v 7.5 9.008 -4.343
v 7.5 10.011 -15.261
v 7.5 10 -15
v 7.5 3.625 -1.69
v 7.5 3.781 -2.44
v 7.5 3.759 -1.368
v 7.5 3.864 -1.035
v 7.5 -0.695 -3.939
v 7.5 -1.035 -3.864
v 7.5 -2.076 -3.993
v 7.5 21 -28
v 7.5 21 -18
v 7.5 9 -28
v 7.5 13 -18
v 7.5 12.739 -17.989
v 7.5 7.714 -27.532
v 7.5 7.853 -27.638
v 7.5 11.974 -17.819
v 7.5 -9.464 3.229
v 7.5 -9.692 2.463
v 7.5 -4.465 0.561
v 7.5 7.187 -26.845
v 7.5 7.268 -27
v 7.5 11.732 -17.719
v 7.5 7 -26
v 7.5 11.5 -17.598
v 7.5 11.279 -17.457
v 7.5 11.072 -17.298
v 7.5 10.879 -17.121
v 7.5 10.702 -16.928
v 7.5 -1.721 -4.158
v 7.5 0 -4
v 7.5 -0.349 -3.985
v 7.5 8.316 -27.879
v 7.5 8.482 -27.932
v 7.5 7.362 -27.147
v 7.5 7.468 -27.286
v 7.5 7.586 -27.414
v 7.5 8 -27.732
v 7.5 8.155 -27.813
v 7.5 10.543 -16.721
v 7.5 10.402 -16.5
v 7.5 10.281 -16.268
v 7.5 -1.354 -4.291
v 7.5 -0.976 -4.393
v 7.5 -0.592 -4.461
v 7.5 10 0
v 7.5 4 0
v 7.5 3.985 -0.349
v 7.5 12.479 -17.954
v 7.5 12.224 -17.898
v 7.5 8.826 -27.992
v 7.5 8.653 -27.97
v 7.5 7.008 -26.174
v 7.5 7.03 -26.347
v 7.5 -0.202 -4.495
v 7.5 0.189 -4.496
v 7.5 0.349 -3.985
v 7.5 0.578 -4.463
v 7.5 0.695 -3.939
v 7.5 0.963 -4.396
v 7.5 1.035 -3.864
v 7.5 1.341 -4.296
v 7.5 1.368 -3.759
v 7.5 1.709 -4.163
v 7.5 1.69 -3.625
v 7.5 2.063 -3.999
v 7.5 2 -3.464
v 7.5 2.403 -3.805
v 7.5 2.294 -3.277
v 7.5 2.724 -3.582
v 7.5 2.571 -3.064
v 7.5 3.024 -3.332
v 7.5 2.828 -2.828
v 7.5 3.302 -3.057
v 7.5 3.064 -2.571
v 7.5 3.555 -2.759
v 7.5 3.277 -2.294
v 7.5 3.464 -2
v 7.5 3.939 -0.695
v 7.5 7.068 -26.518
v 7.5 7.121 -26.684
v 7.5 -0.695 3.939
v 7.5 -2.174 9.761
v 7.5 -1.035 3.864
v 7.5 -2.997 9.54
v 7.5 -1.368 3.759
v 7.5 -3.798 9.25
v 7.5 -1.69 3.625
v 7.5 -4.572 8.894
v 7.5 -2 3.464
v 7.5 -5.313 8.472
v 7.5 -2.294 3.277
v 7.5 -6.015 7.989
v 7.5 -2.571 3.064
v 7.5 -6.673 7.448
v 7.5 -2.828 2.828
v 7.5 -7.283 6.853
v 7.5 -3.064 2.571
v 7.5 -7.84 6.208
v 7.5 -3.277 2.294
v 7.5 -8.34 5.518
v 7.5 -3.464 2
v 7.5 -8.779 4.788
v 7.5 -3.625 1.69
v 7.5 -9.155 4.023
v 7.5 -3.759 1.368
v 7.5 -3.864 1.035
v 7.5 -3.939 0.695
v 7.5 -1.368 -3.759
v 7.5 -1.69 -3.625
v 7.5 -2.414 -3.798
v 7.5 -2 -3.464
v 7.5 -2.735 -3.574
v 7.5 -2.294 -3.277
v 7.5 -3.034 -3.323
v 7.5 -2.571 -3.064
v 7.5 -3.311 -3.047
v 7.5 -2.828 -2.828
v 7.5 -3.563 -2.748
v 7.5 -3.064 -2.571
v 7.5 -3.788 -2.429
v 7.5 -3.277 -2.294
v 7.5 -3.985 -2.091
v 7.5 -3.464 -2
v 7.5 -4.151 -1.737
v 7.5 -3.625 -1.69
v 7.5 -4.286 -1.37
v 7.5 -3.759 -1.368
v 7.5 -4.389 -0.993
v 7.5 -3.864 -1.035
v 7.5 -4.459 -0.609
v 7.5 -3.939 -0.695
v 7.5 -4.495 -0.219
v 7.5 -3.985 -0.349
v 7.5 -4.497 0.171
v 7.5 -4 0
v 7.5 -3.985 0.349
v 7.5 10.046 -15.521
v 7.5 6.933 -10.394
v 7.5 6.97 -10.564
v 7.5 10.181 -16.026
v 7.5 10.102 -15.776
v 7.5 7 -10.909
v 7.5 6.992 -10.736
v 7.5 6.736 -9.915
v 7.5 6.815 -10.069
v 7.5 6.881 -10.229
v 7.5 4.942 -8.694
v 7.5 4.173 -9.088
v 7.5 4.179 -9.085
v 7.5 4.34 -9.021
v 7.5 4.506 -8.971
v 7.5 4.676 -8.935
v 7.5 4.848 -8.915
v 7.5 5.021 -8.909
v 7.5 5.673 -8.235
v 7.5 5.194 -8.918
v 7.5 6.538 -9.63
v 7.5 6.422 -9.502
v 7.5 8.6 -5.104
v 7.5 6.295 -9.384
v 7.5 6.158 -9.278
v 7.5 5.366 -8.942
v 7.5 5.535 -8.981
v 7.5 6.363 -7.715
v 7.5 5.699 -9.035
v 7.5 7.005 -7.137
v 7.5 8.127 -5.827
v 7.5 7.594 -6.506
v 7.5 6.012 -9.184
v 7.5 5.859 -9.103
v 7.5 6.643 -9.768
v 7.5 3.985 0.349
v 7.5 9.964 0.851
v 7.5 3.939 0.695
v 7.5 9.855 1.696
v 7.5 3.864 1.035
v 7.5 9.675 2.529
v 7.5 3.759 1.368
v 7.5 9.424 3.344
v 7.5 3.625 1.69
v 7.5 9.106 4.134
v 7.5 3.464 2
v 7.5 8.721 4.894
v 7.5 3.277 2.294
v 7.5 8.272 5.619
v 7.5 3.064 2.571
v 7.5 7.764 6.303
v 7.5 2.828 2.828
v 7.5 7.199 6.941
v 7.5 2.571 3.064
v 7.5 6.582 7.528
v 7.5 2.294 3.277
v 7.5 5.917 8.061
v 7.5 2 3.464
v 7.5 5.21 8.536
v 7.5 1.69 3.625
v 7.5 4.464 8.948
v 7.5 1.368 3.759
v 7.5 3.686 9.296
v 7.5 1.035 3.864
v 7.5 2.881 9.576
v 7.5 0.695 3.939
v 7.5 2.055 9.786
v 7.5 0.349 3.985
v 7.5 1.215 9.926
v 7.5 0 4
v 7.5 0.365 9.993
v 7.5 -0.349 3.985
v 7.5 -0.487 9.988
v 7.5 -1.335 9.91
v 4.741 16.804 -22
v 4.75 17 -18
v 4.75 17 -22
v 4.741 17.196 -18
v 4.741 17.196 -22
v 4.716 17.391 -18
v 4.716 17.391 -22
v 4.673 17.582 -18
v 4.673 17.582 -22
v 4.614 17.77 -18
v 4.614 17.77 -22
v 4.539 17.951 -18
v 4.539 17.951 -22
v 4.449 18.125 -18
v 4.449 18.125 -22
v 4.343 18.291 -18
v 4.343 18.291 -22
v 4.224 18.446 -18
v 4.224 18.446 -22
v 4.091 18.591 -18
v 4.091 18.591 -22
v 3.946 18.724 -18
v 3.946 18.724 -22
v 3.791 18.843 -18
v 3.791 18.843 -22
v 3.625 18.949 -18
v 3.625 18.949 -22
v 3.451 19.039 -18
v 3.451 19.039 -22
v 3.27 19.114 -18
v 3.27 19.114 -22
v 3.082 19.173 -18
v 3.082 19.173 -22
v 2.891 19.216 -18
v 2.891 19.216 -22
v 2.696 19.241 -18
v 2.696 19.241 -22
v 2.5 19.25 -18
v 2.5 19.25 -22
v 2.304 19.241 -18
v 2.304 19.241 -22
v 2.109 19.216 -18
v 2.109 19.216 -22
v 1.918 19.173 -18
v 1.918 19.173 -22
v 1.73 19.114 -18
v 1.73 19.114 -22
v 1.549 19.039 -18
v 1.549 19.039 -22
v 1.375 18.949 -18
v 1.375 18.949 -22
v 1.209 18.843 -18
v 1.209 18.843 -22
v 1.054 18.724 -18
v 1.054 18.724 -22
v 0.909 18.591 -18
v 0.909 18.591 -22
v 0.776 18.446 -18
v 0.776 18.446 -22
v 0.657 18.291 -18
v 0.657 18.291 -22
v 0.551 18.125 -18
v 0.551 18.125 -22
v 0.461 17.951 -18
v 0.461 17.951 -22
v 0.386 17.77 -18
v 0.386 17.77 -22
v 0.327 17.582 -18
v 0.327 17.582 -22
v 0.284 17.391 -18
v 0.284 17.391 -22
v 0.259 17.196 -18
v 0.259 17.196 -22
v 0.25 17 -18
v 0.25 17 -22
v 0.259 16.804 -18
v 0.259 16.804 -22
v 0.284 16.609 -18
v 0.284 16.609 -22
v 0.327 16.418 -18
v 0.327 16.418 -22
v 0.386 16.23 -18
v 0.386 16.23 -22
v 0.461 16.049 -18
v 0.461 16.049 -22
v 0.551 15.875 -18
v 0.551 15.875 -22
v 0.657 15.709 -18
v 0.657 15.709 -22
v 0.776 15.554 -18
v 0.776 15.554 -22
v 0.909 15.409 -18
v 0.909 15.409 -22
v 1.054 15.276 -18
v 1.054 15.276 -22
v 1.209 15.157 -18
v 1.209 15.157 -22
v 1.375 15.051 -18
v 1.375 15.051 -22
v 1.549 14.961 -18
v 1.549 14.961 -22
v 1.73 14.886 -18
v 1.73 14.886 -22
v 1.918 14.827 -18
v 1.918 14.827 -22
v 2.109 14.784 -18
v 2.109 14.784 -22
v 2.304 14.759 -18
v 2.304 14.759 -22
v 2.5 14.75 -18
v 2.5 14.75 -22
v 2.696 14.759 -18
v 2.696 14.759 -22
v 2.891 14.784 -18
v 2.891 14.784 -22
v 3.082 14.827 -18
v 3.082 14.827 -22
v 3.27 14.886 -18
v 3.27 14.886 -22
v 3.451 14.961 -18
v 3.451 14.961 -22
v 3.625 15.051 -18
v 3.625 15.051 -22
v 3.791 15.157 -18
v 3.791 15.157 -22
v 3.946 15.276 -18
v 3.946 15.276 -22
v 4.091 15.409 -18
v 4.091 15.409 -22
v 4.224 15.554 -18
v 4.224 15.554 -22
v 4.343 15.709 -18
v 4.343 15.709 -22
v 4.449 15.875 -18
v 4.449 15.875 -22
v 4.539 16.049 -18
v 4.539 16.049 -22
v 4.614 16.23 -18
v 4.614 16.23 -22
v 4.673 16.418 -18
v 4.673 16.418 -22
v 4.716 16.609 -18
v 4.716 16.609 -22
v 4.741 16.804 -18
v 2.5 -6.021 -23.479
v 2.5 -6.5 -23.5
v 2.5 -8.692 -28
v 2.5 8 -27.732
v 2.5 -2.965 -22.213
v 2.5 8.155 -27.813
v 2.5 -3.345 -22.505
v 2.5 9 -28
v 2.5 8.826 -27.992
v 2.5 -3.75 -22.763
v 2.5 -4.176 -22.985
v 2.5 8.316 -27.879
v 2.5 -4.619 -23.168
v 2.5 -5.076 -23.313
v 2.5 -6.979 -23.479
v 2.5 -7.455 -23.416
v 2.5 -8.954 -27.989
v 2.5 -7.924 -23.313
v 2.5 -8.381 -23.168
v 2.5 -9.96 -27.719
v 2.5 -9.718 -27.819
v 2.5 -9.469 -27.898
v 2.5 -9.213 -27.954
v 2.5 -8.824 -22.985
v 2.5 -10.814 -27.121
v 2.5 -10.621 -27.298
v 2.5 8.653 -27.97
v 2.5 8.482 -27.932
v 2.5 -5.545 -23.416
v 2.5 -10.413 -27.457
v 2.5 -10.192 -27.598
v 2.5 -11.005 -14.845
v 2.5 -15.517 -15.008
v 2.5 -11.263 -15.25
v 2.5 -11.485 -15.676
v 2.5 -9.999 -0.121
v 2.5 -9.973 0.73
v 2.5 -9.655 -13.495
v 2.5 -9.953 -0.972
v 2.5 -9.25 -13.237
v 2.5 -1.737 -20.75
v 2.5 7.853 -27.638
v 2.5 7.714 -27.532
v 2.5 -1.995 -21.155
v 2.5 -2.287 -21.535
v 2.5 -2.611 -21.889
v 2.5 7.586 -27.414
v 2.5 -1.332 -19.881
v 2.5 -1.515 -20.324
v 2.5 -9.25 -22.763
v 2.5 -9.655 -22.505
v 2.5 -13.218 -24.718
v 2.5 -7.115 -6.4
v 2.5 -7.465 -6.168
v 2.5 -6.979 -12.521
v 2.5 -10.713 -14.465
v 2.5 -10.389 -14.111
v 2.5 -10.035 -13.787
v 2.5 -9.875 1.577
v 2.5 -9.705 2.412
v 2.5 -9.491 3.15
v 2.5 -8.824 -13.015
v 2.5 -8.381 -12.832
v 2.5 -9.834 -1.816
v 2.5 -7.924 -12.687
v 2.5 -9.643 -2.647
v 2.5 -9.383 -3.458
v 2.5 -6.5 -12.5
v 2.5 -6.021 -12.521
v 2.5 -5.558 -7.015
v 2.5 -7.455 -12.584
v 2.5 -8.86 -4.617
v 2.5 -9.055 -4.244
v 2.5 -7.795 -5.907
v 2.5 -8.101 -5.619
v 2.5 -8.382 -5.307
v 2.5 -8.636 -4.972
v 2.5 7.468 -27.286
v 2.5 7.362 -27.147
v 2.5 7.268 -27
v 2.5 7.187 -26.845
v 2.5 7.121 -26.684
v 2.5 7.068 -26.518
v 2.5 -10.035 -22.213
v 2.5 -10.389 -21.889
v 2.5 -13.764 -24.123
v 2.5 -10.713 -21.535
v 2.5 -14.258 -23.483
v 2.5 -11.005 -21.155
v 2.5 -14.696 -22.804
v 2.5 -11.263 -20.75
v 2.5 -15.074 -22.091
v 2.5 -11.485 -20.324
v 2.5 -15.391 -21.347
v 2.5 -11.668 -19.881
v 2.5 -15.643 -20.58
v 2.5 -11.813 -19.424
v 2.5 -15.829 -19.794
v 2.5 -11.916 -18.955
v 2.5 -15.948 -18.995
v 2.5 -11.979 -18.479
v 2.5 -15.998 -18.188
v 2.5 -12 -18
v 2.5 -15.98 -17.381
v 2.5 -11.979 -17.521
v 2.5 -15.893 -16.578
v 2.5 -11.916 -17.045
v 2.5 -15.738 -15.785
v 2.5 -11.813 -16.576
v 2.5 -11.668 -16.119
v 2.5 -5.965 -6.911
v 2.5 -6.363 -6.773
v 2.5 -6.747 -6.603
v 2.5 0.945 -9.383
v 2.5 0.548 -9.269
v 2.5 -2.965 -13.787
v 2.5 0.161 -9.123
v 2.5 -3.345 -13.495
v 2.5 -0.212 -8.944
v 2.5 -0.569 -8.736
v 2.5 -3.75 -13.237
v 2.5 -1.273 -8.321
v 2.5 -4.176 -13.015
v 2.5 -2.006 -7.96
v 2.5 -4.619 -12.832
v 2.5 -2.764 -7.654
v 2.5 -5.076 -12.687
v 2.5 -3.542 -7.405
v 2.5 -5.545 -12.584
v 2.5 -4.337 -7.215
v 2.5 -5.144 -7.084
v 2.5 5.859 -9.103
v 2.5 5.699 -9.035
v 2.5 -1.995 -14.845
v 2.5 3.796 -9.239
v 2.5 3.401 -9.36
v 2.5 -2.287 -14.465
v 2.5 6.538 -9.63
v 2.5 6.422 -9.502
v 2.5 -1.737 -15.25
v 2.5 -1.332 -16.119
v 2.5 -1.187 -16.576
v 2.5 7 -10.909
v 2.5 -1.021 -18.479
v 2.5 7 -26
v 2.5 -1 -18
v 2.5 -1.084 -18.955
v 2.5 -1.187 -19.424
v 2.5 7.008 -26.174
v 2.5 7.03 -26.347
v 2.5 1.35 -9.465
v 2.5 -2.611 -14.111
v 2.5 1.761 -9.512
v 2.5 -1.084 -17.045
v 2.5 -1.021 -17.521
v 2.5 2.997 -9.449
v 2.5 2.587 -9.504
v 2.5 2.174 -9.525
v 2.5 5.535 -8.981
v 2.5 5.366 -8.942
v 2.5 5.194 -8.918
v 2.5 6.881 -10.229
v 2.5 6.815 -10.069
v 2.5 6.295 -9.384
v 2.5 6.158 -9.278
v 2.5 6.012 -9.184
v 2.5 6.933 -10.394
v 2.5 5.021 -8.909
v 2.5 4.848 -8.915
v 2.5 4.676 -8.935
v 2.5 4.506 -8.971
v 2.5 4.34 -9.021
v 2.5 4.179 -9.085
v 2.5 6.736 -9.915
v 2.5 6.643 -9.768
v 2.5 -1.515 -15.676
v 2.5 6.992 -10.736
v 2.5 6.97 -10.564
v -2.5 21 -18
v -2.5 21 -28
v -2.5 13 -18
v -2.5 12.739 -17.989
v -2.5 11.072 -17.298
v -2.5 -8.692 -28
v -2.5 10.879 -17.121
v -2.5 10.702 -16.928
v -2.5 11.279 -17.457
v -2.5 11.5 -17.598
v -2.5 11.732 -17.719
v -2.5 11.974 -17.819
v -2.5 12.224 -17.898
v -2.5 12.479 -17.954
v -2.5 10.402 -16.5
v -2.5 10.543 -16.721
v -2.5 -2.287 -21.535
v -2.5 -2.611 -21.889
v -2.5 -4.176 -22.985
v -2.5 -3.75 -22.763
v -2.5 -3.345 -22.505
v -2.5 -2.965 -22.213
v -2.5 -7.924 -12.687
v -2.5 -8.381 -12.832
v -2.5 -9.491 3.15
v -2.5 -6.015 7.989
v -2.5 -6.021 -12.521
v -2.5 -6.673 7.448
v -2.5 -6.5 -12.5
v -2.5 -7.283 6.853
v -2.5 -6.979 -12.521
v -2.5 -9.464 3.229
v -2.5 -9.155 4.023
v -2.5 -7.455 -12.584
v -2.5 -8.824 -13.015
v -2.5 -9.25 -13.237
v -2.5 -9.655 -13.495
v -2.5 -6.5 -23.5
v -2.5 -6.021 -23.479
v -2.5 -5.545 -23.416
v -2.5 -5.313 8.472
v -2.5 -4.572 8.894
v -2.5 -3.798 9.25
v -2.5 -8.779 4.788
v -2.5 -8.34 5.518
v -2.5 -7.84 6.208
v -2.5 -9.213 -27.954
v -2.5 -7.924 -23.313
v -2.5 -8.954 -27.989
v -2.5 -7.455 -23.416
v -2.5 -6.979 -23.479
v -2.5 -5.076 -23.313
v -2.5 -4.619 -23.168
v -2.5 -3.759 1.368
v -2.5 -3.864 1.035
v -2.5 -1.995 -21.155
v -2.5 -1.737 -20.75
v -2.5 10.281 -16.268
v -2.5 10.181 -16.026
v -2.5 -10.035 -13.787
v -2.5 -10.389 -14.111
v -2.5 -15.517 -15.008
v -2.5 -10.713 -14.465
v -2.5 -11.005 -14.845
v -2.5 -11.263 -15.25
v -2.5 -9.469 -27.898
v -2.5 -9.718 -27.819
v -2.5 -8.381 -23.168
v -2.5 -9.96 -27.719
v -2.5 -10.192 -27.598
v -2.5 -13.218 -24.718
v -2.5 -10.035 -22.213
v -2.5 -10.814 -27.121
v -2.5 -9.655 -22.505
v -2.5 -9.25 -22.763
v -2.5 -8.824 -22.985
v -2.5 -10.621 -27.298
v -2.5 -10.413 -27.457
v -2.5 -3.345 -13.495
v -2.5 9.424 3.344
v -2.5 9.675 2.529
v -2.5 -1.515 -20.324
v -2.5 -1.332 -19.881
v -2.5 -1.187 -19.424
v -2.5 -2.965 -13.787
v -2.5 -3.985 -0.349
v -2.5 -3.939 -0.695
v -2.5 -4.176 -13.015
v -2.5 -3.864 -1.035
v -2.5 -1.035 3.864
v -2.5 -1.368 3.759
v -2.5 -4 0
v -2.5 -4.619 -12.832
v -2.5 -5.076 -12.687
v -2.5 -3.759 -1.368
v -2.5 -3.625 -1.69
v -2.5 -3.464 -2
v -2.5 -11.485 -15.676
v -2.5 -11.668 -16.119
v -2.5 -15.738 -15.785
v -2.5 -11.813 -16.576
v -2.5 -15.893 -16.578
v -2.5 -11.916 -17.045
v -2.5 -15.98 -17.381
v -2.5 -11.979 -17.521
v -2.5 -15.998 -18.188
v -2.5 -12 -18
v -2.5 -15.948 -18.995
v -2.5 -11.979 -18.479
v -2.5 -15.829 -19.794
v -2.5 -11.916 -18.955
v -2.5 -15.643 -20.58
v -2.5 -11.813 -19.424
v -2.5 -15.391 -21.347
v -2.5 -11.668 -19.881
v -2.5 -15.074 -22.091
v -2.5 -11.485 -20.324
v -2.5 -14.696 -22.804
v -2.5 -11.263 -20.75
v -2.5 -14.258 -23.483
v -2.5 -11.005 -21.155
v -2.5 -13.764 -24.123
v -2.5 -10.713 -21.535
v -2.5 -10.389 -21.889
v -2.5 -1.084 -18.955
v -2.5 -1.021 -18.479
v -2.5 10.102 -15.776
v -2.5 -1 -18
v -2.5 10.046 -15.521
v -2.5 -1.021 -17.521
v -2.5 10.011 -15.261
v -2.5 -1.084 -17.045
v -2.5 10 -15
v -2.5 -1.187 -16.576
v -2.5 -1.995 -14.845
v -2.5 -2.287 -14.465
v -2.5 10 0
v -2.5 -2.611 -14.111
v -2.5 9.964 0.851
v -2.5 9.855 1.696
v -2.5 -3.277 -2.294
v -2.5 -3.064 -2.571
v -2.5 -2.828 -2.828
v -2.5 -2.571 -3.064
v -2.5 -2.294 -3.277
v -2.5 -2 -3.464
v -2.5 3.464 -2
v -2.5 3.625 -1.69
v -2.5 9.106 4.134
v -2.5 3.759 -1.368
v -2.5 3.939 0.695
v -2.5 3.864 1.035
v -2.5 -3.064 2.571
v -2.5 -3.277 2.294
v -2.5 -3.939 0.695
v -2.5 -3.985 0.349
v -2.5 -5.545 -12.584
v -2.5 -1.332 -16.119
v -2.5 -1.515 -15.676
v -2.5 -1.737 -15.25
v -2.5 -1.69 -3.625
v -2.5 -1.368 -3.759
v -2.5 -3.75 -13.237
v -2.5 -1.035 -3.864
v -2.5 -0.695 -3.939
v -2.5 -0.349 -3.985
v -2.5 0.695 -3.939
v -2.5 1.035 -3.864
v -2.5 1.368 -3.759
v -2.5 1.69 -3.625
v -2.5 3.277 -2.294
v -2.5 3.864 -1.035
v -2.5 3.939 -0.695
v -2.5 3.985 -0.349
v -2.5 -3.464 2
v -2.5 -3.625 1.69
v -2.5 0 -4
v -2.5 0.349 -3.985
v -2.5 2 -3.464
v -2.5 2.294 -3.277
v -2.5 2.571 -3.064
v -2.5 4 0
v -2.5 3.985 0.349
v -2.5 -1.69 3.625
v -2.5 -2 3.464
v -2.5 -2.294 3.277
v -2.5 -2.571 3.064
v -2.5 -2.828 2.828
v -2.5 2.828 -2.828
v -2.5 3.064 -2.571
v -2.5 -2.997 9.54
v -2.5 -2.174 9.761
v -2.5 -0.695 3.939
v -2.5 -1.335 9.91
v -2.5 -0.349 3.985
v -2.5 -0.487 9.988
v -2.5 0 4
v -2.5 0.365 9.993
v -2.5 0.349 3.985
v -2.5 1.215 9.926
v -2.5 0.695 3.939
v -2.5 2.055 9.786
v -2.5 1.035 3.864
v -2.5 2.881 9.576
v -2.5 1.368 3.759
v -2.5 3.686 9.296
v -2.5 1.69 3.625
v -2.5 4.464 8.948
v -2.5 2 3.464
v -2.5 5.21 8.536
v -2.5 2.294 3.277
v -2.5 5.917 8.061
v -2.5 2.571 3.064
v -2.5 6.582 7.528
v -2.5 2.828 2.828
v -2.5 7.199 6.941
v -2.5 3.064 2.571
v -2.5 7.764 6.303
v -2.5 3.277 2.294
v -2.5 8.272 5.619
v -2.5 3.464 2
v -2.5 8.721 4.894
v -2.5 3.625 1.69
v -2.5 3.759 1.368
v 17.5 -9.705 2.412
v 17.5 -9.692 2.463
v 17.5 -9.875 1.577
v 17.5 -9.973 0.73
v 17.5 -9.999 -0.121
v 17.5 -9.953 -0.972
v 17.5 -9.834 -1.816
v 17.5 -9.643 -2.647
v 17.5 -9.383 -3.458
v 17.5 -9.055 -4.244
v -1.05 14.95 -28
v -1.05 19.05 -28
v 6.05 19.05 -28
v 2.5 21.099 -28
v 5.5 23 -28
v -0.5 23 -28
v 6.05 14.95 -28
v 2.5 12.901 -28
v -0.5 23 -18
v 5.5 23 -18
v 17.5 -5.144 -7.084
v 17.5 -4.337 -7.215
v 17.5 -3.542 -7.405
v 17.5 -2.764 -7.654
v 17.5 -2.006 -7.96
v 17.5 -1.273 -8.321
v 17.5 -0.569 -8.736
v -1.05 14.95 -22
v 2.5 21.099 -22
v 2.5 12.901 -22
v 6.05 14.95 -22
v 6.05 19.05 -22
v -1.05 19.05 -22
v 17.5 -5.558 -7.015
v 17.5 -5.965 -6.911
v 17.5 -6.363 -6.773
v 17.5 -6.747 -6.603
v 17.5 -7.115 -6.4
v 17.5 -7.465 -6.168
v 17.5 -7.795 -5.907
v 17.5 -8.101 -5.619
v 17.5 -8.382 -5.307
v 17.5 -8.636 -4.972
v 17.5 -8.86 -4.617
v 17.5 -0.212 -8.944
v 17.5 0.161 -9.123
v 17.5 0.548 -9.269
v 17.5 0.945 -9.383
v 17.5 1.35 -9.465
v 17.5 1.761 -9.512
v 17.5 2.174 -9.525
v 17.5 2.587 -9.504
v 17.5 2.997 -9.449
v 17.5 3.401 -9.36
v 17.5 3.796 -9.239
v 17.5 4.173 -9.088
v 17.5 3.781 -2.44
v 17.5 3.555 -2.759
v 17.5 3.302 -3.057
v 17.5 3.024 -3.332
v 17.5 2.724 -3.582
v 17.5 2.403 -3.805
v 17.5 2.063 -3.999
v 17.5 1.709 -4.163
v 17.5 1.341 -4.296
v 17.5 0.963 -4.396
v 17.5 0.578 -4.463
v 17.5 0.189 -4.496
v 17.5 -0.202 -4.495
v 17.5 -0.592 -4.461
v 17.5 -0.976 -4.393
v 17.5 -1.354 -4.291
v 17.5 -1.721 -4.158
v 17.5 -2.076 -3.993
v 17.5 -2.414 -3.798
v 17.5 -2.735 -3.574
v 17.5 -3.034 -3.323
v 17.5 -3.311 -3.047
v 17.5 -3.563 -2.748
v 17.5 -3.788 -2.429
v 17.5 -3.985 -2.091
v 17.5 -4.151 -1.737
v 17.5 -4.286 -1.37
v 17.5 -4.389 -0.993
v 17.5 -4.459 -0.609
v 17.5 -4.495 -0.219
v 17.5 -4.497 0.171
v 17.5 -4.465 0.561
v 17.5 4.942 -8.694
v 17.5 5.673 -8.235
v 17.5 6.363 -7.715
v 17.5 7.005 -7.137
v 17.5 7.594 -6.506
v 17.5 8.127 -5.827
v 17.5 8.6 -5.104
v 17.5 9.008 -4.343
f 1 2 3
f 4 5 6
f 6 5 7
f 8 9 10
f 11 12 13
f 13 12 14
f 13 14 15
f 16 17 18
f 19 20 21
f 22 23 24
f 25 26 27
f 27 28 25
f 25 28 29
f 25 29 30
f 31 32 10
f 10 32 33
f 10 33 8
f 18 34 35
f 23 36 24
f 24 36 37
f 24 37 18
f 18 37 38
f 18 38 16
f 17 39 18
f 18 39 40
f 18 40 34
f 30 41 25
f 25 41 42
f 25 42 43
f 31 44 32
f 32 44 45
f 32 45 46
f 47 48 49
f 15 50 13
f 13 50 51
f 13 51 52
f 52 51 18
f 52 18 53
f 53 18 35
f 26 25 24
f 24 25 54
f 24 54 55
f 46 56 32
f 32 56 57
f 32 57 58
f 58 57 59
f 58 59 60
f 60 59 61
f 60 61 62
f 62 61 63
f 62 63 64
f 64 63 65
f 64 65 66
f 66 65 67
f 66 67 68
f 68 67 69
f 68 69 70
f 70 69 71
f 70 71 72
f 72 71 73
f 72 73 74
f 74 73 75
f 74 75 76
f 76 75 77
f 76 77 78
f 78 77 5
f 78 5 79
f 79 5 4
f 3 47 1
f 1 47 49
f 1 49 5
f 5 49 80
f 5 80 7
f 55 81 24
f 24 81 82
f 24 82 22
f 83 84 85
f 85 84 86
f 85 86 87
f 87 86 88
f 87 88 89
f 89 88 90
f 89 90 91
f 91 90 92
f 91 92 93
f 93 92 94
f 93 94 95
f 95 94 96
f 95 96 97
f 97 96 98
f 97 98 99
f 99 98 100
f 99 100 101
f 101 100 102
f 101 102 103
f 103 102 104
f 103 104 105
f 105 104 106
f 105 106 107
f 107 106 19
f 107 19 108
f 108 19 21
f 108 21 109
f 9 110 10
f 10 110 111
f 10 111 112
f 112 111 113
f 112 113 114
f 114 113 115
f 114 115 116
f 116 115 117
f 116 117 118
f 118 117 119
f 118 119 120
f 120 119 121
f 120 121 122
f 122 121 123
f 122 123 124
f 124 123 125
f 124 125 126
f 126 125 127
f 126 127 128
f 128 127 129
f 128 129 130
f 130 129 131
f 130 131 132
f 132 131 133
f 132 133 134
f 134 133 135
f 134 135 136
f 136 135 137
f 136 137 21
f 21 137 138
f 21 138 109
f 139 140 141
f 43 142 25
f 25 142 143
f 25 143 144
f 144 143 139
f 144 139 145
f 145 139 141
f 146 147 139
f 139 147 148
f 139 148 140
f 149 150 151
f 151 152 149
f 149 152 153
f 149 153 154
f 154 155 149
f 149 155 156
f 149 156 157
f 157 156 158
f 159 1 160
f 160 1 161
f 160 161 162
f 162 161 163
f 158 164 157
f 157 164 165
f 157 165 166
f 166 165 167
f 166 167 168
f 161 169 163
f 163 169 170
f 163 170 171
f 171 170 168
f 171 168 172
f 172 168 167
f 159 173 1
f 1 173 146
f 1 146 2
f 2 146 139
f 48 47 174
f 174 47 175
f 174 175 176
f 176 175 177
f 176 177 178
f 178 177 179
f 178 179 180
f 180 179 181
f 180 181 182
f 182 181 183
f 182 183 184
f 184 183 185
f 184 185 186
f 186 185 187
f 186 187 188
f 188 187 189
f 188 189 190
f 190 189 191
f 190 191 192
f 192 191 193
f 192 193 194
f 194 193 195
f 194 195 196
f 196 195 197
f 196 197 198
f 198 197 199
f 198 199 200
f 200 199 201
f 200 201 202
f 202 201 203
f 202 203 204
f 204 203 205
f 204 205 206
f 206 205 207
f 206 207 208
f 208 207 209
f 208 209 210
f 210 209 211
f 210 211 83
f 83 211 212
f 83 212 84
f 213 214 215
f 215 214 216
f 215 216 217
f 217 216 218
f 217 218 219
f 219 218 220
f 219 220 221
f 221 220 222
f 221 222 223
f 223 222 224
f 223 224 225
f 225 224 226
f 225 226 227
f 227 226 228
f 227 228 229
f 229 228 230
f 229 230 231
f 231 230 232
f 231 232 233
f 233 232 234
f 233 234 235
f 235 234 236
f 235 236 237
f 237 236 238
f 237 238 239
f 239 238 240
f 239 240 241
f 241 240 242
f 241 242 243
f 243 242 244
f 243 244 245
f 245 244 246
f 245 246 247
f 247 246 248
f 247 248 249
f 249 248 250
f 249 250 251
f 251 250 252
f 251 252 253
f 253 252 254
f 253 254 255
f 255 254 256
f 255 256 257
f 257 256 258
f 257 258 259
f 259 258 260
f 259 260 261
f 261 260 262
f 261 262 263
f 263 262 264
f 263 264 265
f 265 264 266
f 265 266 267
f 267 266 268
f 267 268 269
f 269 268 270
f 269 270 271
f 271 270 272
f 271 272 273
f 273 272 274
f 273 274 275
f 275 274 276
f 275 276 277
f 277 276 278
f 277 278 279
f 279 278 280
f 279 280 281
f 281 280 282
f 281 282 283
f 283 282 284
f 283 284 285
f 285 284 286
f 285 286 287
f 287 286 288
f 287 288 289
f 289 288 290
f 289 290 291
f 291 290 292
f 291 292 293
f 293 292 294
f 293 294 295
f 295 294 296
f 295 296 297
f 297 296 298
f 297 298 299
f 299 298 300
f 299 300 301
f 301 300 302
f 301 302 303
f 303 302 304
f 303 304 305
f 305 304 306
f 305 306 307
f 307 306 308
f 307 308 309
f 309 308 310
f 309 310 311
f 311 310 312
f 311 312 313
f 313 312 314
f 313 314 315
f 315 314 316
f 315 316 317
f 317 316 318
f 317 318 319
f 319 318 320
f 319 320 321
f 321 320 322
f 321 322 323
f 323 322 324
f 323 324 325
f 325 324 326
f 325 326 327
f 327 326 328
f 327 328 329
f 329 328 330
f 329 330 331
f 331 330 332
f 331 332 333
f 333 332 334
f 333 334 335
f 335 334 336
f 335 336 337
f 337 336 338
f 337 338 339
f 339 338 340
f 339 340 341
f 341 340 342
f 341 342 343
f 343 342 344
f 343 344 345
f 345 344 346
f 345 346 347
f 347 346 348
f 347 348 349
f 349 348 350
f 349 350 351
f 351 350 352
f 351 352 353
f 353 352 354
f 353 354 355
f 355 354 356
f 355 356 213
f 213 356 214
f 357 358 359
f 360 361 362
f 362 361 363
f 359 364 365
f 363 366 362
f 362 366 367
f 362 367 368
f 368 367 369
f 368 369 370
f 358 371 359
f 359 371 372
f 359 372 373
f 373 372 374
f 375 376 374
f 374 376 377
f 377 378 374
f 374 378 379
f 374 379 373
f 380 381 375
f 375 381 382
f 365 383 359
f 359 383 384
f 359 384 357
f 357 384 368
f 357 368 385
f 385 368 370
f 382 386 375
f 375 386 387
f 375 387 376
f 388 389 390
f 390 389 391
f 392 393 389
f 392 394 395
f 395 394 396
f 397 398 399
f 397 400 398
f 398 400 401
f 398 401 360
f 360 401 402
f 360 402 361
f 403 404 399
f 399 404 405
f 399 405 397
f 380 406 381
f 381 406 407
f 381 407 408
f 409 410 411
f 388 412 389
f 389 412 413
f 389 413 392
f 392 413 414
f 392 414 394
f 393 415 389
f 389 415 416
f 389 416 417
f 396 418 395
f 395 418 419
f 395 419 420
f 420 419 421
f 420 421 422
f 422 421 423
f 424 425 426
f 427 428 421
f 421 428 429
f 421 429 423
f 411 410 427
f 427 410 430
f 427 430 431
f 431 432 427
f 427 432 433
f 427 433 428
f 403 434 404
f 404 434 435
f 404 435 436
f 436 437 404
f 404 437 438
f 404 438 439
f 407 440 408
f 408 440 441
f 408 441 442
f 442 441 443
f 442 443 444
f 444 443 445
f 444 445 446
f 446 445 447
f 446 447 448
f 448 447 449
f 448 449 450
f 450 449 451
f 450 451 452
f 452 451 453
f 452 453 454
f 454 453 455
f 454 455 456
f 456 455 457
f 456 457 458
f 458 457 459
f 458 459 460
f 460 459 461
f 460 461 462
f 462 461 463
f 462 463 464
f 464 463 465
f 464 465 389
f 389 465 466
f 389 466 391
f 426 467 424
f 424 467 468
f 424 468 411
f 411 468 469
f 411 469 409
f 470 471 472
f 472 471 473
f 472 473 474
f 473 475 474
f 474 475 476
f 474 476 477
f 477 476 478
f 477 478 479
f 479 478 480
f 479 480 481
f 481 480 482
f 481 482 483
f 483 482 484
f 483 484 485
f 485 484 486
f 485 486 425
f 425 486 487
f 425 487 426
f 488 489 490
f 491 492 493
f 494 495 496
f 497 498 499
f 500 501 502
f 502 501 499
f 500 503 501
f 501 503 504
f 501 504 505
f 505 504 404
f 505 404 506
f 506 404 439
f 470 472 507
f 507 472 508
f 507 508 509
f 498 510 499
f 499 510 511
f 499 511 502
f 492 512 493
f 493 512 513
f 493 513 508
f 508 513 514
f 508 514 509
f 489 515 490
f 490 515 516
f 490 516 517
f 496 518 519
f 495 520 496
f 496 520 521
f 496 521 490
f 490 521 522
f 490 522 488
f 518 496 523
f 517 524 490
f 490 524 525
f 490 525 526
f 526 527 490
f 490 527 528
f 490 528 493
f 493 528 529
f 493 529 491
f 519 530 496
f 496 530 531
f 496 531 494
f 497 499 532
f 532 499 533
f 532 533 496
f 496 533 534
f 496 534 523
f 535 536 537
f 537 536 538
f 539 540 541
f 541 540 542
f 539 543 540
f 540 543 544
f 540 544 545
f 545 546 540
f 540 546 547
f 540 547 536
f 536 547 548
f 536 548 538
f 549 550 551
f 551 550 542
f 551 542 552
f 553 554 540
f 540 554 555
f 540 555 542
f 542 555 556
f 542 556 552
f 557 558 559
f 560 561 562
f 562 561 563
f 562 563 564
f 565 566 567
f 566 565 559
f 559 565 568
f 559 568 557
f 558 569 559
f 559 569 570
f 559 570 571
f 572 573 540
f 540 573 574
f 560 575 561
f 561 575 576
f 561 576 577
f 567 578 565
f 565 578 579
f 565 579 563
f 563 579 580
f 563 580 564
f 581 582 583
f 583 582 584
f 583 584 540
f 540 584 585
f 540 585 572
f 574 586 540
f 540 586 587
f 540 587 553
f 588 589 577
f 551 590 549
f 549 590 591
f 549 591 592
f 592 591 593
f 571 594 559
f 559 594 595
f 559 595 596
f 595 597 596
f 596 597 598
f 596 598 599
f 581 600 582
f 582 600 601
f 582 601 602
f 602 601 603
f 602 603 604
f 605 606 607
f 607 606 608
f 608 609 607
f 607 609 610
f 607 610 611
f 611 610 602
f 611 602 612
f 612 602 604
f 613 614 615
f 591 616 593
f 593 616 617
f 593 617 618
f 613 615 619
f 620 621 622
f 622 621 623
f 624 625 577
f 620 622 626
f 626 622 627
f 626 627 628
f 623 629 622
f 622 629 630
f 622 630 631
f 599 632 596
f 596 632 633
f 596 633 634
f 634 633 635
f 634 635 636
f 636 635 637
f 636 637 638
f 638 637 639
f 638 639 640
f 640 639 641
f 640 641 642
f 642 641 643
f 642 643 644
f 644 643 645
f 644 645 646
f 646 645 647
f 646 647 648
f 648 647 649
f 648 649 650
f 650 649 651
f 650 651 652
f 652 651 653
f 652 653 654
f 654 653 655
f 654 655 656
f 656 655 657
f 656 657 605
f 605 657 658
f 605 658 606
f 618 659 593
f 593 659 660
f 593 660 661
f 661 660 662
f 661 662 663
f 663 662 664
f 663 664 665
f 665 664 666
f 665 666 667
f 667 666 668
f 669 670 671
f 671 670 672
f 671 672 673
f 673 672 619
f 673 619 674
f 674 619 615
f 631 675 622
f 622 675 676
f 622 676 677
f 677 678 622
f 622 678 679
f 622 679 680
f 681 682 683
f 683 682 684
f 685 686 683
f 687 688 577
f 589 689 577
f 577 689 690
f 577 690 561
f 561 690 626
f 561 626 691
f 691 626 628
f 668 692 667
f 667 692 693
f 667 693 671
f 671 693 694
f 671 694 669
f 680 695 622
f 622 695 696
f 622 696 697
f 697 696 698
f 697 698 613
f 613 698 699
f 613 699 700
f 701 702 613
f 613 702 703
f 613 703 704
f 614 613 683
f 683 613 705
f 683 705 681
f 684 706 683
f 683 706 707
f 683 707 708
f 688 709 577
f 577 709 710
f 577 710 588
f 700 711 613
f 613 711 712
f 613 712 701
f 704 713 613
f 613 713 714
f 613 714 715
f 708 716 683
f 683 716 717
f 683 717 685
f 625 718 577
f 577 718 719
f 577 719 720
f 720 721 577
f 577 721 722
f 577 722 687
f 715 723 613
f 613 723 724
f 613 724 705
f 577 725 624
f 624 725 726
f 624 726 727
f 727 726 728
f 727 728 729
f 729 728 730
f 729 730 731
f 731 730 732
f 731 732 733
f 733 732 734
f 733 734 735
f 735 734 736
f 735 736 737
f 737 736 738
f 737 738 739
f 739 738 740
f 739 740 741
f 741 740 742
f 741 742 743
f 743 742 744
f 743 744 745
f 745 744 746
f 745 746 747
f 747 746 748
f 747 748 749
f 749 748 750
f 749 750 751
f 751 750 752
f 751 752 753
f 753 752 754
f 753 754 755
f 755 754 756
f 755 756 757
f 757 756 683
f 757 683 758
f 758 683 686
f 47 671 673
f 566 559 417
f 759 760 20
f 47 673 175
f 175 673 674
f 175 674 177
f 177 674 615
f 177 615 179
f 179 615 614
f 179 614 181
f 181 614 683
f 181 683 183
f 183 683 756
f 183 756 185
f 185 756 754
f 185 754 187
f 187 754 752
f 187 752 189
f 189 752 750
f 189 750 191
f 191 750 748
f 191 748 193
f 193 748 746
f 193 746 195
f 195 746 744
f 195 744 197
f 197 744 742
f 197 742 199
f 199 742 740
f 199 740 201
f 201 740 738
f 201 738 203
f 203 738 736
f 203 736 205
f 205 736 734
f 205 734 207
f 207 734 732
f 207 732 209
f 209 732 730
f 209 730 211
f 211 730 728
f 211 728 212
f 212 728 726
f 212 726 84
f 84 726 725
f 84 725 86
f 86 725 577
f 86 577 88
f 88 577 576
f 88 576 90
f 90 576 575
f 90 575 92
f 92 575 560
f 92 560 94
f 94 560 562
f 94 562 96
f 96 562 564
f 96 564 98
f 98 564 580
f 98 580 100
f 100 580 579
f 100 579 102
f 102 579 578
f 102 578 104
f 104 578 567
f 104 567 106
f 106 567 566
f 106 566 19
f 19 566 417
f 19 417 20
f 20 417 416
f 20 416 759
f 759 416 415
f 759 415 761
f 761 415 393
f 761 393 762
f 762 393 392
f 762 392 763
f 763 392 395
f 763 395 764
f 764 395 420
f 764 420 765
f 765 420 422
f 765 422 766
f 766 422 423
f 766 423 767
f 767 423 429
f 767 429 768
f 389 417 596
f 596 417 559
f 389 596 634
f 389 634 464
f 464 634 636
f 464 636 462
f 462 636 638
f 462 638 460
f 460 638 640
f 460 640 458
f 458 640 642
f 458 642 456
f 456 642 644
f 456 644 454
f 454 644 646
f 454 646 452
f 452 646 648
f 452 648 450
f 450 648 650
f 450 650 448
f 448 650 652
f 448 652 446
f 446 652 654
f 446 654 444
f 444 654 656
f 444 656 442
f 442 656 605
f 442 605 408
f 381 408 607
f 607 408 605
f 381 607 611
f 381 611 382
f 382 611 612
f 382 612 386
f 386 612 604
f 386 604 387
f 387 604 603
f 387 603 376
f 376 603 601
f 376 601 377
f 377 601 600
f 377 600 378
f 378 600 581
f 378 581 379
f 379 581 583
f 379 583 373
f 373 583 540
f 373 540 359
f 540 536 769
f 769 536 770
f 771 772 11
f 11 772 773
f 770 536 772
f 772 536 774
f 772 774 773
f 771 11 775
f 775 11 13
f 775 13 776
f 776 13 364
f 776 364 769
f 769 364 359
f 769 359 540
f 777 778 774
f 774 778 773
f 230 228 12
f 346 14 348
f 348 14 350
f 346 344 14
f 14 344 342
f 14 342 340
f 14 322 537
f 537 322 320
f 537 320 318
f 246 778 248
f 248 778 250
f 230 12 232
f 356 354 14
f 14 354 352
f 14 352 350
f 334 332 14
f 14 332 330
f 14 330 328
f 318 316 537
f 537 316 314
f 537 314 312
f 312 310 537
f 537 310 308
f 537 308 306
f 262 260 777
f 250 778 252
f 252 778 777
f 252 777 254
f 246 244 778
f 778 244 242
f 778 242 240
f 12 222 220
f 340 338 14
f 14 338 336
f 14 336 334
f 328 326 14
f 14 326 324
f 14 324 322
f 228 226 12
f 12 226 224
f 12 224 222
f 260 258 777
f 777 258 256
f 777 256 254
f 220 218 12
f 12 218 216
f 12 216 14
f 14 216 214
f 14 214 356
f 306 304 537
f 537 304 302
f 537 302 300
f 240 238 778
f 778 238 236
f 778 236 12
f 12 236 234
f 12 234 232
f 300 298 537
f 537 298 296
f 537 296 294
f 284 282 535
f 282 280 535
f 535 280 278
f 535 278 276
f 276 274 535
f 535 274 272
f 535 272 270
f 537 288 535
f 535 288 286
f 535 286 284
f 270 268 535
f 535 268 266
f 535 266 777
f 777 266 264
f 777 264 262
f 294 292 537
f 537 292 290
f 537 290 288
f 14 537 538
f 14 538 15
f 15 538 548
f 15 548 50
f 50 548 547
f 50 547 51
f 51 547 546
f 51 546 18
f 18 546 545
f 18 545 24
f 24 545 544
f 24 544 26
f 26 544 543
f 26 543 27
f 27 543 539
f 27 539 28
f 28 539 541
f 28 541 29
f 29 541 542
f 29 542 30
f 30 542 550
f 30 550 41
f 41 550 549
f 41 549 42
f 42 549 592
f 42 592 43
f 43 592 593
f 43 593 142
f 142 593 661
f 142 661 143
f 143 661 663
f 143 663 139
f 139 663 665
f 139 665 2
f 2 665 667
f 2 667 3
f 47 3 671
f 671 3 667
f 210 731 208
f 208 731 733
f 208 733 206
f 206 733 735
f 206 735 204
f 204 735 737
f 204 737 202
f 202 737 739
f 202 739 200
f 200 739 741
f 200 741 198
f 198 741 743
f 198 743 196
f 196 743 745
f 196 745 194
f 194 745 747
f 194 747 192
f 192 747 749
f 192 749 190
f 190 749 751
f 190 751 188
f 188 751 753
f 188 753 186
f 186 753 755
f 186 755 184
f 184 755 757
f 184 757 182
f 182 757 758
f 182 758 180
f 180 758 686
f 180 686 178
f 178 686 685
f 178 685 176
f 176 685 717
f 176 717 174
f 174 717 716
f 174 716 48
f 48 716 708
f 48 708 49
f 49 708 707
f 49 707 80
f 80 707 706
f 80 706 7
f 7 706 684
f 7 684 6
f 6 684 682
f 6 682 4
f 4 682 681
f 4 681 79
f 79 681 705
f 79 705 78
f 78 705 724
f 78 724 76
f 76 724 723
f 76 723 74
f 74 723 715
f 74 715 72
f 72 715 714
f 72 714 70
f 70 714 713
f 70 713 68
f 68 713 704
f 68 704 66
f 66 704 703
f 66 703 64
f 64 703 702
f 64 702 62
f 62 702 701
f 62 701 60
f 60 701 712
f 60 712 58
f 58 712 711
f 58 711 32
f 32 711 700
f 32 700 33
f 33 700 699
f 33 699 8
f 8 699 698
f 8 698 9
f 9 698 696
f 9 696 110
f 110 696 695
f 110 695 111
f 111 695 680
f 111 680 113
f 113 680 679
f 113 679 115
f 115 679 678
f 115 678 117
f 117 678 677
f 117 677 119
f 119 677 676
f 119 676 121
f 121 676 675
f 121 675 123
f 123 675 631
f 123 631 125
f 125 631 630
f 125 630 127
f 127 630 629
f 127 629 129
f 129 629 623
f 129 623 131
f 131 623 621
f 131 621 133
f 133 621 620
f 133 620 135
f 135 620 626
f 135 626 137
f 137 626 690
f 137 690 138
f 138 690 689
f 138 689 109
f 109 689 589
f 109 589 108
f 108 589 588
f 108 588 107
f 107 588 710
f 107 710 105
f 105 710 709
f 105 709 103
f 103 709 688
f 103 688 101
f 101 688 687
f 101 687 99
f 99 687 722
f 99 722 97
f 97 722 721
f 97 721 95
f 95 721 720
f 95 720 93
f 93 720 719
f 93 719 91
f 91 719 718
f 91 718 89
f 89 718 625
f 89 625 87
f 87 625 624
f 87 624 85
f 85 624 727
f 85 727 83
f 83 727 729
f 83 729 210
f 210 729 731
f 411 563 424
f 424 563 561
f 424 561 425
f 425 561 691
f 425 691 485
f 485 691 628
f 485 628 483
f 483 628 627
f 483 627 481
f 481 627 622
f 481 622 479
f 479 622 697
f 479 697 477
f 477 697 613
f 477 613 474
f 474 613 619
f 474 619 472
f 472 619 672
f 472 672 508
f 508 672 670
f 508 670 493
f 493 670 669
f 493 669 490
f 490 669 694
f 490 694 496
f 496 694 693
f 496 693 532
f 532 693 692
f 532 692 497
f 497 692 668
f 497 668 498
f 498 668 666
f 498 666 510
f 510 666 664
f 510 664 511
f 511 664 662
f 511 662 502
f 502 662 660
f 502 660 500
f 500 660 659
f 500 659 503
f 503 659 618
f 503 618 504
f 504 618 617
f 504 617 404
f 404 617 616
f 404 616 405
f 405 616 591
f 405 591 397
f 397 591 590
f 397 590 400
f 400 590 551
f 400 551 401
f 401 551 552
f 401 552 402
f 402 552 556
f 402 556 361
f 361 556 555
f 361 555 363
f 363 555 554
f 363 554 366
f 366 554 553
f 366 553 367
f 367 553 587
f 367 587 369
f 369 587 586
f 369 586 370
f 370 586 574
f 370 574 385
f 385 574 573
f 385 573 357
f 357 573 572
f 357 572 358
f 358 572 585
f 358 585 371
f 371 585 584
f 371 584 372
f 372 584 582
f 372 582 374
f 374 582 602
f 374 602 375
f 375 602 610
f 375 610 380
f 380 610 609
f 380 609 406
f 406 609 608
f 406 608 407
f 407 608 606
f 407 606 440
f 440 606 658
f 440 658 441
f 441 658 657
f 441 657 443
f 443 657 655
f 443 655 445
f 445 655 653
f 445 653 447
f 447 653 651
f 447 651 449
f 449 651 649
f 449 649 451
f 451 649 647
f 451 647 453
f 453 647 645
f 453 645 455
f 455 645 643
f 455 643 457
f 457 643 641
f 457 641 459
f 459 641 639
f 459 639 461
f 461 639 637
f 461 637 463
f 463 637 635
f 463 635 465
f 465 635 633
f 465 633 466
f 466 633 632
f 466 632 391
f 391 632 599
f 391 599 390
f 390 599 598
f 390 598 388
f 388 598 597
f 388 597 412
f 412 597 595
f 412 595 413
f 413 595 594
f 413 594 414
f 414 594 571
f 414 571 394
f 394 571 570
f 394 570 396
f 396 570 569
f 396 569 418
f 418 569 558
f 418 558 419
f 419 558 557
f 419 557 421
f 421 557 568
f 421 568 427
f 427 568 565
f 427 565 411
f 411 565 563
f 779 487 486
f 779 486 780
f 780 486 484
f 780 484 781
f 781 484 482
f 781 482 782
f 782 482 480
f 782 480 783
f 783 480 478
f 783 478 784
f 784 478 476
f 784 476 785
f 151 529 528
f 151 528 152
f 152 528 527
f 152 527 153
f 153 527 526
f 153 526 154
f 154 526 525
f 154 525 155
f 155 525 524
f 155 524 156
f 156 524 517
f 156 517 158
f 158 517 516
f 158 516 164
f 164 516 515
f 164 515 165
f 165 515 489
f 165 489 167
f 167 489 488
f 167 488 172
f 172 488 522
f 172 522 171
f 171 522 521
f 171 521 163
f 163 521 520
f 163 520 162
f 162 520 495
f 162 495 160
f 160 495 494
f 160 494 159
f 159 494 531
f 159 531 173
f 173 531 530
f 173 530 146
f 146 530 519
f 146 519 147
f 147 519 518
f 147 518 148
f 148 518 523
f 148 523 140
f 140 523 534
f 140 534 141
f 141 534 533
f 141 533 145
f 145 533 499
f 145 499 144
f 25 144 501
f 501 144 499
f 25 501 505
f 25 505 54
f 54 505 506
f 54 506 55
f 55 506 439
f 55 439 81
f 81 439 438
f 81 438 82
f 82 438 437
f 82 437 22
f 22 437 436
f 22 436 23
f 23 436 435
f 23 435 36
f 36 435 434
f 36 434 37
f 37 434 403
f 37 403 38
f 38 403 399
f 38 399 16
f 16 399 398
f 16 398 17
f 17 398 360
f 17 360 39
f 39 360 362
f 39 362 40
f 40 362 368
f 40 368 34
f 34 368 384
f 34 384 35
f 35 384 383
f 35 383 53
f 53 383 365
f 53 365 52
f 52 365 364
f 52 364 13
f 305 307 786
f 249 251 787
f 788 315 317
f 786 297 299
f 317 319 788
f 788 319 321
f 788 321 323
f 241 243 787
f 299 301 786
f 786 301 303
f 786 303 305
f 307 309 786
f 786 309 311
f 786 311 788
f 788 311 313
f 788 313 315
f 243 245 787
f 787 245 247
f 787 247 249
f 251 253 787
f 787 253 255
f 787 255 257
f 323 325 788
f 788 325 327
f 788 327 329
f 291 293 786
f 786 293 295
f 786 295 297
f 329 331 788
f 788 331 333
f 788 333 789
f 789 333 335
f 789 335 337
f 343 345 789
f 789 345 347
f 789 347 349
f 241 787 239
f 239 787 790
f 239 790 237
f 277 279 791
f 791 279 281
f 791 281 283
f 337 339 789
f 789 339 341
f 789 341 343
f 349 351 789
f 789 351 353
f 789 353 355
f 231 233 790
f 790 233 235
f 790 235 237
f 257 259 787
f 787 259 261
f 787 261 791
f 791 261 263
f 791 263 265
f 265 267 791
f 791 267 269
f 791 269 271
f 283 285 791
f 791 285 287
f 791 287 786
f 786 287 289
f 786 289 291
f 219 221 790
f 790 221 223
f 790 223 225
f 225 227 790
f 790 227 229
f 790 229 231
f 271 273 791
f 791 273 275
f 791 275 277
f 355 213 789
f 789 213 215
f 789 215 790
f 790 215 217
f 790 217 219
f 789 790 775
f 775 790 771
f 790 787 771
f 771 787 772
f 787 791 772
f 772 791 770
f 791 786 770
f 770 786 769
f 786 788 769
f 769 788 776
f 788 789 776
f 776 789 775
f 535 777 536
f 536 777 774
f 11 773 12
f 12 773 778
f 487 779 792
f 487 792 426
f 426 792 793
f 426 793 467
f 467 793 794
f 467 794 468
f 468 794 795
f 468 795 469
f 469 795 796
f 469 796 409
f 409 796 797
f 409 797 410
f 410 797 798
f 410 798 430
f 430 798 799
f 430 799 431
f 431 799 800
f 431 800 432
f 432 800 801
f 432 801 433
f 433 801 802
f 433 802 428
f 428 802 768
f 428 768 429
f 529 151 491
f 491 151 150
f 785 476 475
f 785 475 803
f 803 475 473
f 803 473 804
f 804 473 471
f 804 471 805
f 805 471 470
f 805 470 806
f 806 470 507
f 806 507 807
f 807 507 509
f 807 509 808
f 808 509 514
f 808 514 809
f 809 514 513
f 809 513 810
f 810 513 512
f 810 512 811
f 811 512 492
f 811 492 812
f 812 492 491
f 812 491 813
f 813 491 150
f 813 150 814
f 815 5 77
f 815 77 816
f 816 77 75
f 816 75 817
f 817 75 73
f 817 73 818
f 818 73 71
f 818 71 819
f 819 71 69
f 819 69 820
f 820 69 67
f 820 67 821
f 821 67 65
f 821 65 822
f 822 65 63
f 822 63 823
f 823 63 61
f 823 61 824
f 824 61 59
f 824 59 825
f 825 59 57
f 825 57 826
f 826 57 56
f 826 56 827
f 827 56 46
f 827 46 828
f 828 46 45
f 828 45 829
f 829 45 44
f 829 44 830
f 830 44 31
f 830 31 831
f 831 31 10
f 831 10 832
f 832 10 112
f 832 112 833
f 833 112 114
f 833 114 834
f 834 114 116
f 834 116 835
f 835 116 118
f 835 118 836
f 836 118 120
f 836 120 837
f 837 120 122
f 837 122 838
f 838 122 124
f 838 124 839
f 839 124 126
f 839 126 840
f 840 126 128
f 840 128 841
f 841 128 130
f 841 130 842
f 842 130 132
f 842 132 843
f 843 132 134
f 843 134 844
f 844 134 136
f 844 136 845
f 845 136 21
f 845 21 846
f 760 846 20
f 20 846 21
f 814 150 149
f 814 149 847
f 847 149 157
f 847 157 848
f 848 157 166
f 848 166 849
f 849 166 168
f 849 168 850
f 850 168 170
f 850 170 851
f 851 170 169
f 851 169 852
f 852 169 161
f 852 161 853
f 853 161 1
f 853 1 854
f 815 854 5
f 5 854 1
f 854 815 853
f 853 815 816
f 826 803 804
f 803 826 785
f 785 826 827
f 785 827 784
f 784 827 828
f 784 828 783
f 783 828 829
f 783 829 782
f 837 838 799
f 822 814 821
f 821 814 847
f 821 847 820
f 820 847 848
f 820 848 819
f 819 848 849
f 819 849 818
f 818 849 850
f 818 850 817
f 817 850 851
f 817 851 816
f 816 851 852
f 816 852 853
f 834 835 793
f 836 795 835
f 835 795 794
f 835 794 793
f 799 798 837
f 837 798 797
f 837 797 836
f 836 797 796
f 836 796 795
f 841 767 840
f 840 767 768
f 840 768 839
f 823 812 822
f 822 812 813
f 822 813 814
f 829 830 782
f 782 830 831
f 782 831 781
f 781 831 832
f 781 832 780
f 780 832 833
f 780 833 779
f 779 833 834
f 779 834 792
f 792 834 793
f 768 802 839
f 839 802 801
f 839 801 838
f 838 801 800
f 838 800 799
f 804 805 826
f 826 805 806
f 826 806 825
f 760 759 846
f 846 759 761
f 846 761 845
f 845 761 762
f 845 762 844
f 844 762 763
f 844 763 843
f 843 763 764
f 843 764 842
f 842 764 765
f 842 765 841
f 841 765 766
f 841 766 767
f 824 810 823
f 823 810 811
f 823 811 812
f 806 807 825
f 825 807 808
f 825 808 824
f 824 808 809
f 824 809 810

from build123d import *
from build123d.topology import SkipClean

# Parameters (mm, degrees)
SKETCH1_R           = 4
SKETCH1_R_2         = 5.5
BOSS_EXTRUDE1_DEPTH = 2.5
BOSS_EXTRUDE2_START = -5
SKETCH2_R           = 4
BOSS_EXTRUDE2_DEPTH = 5
SKETCH3_R           = 2.25
CUT_EXTRUDE1_DEPTH  = 38.003378224
CUT_EXTRUDE2_DEPTH  = 6
CHAMFER1_SIZE       = 2
FILLET1_R           = 5
BOSS_EXTRUDE3_DEPTH = 10


# Read off the part's stored shape, not the designer's step: Boss-Extrude3
with BuildPart() as part:
    # Sketch1 → Boss-Extrude1 (new, symmetric)
    with BuildSketch(Plane(origin=(0, 0, 0), x_dir=(0, 0, -1), z_dir=(1, 0, 0))):
        with BuildLine():
            Line((-3.149551455, -9.491065569), (15.007926117, -15.51651229))
            ThreePointArc((15.007926117, -15.51651229), (20.188852348, -15.744399678), (24.717514421, -13.217514421))
            Line((24.717514421, -13.217514421), (27.121320344, -10.813708499))
            ThreePointArc((27.121320344, -10.813708499), (27.771638598, -9.840438453), (28, -8.692388155))
            Line((28, -8.692388155), (28, 23))
            Line((28, 23), (18, 23))
            Line((18, 23), (18, 13))
            ThreePointArc((18, 13), (17.121320344, 10.878679656), (15, 10))
            Line((15, 10), (0, 10))
            ThreePointArc((0, 10), (-9.871946507, 1.595202857), (-3.149551455, -9.491065569))
        make_face()
        Circle(SKETCH1_R, mode=Mode.SUBTRACT)
        with Locations((18, -6.5)):
            Circle(SKETCH1_R_2, mode=Mode.SUBTRACT)
    extrude(amount=BOSS_EXTRUDE1_DEPTH, both=True)

    # Sketch2 → Boss-Extrude2 (add)
    with SkipClean():  # the faces are left unmerged after this step: merging them gives an invalid solid
        with BuildSketch(Plane.ZY.offset(-2.5).offset(BOSS_EXTRUDE2_START)):
            with BuildLine():
                Line((0, 10), (-15, 10))
                ThreePointArc((-15, 10), (-17.121320344, 10.878679656), (-18, 13))
                Line((-18, 13), (-18, 23))
                Line((-18, 23), (-28, 23))
                Line((-28, 23), (-28, 9))
                ThreePointArc((-28, 9), (-27.414213562, 7.585786438), (-26, 7))
                Line((-26, 7), (-10.908712115, 7))
                ThreePointArc((-10.908712115, 7), (-9.225461292, 6.08012345), (-9.090593429, 4.166666667))
                ThreePointArc((-9.090593429, 4.166666667), (-9.651431629, 2.617225154), (-9.950203687, 0.996717904))
                ThreePointArc((-9.950203687, 0.996717904), (-7.653907103, -2.763910898), (-7.017714401, -7.124021658))
                ThreePointArc((-7.017714401, -7.124021658), (9.253113438, -3.792082767), (0, 10))
            make_face()
            Circle(SKETCH2_R, mode=Mode.SUBTRACT)
        extrude(amount=BOSS_EXTRUDE2_DEPTH)

    # Sketch3 → Cut-Extrude1 (cut, through all)
    with SkipClean():  # the faces are left unmerged after this step: merging them gives an invalid solid
        with BuildSketch(Plane.XY.offset(-18)):
            with Locations((2.5, 17)):
                Circle(SKETCH3_R)
        extrude(amount=-CUT_EXTRUDE1_DEPTH, mode=Mode.SUBTRACT)

    # Sketch4 → Cut-Extrude2 (cut)
    with SkipClean():  # the faces are left unmerged after this step: merging them gives an invalid solid
        with BuildSketch(Plane(origin=(0, 0, -28), x_dir=(-1, 0, 0), z_dir=(0, 0, -1))):
            Polygon((-6.05, 14.950406544), (-2.5, 12.900813089), (1.05, 14.950406544), (1.05, 19.049593456), (-2.5, 21.099186911), (-6.05, 19.049593456), align=None)
        extrude(amount=-CUT_EXTRUDE2_DEPTH, mode=Mode.SUBTRACT)

    # Chamfer1
    chamfer1_edges = [part.edges().sort_by_distance(p)[0] for p in [
        (-2.5, 23, -23),
        (7.5, 23, -23),
    ]]
    chamfer(chamfer1_edges, length=CHAMFER1_SIZE)

    # Fillet1
    fillet1_edges = [part.edges().sort_by_distance(p)[0] for p in [
        (5, -7.124021658, -7.017714401),
        (5, 0.996717904, -9.950203687),
    ]]
    fillet(fillet1_edges, radius=FILLET1_R)

    # Boss-Extrude3 outline → Boss-Extrude3 (add)
    with SkipClean():  # the faces are left unmerged after this step: merging them gives an invalid solid
        with BuildSketch(Plane(origin=(7.5, 0, 0), x_dir=(0, 0, -1), z_dir=(1, 0, 0))):
            with BuildLine():
                ThreePointArc((-2.463364838, -9.691843668), (0.945667306, -9.955185249), (4.244142914, -9.054681161))
                ThreePointArc((4.244142914, -9.054681161), (6.167964396, -7.465154449), (7.083924127, -5.143796649))
                ThreePointArc((7.083924127, -5.143796649), (7.6539625, -2.763757496), (8.736132305, -0.568663276))
                ThreePointArc((8.736132305, -0.568663276), (9.511605201, 1.757812047), (9.087599302, 4.173192895))
                ThreePointArc((9.087599302, 4.173192895), (7.137011683, 7.00450314), (4.342750079, 9.007803381))
                Line((4.342750079, 9.007803381), (2.44029991, 3.780864498))
                ThreePointArc((2.44029991, 3.780864498), (4.228616794, -1.539090645), (-0.560914668, -4.464904785))
                Line((-0.560914668, -4.464904785), (-2.463364838, -9.691843668))
            make_face()
        extrude(amount=BOSS_EXTRUDE3_DEPTH)


solid = part.part
